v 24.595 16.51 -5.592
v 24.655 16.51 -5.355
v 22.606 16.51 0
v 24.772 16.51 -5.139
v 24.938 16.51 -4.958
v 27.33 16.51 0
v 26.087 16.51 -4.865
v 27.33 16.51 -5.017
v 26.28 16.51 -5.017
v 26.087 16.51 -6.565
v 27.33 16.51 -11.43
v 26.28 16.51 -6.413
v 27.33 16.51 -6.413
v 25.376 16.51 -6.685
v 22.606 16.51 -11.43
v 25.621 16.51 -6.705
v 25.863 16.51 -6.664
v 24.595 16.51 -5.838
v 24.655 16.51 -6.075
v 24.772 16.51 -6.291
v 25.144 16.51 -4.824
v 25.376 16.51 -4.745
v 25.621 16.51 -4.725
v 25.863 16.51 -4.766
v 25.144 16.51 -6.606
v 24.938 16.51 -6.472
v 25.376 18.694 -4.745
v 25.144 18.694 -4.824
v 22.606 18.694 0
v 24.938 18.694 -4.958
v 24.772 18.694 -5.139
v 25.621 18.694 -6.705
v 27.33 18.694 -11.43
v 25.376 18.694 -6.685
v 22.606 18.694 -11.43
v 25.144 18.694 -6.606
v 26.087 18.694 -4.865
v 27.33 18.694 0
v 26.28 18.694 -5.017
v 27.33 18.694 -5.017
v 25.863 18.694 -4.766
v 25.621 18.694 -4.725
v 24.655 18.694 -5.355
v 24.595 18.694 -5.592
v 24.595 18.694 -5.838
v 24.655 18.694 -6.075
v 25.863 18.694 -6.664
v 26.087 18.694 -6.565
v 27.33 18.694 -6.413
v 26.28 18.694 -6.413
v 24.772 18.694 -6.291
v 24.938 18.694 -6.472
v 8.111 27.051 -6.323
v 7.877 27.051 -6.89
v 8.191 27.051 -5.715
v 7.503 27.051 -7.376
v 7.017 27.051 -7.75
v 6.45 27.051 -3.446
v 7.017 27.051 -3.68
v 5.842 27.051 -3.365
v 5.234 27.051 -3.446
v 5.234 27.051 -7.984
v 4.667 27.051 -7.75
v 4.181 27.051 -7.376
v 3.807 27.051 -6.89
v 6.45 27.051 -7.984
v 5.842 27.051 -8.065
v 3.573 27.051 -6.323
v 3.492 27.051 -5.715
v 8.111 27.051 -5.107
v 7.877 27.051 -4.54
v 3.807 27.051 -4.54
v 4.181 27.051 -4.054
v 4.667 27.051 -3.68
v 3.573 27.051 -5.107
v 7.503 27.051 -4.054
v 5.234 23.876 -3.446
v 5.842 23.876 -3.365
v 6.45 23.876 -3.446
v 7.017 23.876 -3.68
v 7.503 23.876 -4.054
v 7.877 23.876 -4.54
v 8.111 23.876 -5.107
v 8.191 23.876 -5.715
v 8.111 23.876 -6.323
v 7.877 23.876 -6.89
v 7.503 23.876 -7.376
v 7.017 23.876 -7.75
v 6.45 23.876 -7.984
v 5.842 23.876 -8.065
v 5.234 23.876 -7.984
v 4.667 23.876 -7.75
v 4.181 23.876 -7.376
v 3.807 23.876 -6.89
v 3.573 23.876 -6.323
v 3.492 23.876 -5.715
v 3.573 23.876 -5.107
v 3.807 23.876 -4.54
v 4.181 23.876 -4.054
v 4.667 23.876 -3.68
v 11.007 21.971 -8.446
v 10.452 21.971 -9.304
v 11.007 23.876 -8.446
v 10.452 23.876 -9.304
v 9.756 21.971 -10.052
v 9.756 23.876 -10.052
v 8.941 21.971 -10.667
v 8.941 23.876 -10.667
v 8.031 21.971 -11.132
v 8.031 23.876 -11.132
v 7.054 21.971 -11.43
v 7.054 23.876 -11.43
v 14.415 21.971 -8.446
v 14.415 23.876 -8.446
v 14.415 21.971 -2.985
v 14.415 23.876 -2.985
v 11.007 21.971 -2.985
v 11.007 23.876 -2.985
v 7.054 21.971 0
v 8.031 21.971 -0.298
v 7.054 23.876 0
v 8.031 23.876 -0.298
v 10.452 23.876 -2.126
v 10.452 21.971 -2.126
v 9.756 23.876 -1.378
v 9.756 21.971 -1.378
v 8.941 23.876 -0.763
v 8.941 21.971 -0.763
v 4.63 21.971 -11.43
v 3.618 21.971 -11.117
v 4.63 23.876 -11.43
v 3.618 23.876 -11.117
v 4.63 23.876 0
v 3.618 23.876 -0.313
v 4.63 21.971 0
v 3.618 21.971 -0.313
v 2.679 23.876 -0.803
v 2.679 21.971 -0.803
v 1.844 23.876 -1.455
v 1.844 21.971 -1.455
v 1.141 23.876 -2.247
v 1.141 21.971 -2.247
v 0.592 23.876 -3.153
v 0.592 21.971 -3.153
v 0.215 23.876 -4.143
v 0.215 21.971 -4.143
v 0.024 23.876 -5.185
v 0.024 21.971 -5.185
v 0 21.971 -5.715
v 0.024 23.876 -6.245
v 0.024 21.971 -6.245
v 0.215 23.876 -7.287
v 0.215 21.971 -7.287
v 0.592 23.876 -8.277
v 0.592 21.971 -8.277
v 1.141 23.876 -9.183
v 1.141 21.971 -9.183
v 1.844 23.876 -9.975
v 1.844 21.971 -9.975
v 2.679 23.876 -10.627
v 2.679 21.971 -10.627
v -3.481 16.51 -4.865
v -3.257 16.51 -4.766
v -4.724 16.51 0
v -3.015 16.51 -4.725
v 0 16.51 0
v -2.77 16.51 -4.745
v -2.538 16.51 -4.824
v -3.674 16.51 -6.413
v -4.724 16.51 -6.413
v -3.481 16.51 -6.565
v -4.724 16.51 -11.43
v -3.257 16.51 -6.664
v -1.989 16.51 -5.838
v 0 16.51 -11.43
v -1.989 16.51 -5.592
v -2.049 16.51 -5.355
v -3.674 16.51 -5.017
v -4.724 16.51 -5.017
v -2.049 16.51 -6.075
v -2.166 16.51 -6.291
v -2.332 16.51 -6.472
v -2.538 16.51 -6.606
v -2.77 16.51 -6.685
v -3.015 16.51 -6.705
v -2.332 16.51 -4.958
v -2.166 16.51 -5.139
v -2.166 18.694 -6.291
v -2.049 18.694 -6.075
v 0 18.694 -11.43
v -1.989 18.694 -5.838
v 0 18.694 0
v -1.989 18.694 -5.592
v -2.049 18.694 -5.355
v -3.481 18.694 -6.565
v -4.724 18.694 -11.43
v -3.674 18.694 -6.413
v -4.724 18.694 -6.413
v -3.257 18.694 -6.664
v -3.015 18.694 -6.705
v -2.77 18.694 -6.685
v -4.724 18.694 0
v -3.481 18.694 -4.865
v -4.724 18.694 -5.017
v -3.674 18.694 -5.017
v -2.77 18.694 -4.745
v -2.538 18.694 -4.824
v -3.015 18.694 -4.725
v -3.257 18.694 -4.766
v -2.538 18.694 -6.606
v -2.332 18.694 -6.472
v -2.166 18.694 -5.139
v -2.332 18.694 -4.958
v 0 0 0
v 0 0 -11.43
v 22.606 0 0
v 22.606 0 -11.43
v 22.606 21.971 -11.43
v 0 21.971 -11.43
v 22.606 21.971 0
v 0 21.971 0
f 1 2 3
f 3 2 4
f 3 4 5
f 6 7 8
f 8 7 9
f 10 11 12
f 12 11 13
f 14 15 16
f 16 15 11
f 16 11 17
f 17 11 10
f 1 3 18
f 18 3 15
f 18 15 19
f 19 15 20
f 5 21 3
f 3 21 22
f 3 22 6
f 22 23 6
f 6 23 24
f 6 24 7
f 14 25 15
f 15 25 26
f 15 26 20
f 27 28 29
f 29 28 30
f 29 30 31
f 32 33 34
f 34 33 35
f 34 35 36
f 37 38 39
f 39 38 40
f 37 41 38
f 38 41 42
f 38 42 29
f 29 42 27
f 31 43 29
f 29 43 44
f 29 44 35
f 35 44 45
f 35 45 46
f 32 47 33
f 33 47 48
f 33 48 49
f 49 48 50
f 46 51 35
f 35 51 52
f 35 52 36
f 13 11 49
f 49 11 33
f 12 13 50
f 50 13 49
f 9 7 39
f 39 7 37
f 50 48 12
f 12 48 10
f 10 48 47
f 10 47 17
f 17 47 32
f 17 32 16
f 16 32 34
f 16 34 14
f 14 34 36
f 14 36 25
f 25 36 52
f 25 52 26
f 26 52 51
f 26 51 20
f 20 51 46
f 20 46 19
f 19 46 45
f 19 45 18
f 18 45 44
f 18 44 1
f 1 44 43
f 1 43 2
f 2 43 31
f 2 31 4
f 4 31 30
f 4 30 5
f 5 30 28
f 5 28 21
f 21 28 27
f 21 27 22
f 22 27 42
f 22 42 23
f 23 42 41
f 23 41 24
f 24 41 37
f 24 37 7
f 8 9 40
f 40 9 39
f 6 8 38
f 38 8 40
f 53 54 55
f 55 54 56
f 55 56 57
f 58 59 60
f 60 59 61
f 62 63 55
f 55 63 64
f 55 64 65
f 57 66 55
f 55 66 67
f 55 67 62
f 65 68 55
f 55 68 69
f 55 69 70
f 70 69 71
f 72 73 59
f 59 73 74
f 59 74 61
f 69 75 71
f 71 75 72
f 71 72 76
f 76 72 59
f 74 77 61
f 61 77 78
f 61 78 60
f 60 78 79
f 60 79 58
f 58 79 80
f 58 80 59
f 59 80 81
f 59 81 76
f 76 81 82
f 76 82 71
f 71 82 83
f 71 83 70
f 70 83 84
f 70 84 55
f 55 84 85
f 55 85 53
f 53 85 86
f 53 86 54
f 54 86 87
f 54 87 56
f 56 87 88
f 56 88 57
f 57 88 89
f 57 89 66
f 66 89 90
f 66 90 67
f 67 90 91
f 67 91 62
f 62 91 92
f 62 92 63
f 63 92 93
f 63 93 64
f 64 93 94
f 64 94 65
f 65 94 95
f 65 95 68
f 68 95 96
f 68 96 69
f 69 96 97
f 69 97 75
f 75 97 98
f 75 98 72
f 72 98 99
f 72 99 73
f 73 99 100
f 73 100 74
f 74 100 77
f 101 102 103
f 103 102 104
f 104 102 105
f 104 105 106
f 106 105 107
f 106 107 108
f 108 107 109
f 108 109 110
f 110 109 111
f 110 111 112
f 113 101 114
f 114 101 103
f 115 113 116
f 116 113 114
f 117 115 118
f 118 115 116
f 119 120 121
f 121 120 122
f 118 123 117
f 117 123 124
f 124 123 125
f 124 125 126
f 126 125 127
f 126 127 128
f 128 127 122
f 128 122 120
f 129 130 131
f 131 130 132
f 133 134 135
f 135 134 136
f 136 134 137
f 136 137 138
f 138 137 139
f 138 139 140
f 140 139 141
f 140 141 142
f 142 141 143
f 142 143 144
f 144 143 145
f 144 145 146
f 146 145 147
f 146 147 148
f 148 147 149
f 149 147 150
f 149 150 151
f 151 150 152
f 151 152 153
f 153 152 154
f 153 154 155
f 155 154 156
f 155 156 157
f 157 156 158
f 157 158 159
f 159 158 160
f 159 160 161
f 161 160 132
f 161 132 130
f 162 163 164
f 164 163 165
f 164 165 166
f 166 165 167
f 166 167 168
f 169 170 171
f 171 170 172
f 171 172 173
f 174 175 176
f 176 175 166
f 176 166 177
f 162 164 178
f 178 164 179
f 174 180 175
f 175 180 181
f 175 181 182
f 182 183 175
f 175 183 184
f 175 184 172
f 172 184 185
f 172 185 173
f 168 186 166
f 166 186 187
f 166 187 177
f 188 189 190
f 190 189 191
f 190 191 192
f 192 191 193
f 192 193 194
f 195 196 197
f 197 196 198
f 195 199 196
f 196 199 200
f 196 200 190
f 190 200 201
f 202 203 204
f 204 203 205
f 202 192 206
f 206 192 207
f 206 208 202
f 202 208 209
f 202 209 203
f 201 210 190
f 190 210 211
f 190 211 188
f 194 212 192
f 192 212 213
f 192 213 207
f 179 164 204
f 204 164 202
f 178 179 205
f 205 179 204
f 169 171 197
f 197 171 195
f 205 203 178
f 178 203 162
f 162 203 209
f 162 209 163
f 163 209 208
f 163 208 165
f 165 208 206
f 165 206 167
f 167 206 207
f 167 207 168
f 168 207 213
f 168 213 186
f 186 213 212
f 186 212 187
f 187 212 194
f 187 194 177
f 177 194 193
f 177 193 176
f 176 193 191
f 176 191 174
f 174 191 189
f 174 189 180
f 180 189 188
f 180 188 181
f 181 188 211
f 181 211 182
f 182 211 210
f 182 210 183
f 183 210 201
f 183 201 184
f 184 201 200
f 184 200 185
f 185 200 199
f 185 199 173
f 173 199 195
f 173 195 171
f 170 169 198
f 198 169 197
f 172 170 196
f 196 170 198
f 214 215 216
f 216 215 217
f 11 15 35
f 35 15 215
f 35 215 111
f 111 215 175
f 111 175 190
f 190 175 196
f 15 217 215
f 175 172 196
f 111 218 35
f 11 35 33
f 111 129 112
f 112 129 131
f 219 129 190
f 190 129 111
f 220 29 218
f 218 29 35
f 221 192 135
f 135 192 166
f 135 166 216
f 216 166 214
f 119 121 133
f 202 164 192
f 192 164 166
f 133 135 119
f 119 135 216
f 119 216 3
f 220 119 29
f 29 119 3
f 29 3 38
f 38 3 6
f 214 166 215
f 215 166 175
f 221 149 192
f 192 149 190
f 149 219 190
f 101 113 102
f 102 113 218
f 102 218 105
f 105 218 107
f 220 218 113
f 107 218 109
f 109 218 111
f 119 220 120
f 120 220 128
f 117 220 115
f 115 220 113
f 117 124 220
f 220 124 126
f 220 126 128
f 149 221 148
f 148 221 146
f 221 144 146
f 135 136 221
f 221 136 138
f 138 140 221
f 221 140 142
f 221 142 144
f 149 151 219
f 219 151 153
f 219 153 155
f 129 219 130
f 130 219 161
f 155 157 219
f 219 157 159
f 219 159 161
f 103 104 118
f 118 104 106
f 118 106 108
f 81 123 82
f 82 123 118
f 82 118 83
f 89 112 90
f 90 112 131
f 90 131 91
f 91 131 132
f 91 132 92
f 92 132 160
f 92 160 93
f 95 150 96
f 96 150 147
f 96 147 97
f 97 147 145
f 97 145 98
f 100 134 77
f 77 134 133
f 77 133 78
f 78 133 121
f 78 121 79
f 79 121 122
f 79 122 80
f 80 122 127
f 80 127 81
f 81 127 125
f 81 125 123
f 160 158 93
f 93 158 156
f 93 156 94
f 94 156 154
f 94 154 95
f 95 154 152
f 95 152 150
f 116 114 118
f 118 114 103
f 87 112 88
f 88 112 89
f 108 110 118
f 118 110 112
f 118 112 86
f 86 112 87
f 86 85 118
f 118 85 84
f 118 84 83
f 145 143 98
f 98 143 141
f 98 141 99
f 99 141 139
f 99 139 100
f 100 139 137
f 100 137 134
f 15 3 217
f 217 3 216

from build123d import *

# Parameters (mm, degrees)
SKETCH1_W           = 22.606
SKETCH1_H           = 11.43
BOSS_EXTRUDE1_DEPTH = 21.971
BOSS_EXTRUDE2_DEPTH = 2.1844
BOSS_EXTRUDE3_DEPTH = 1.905
SKETCH5_R           = 2.3495
BOSS_EXTRUDE4_DEPTH = 3.175


with BuildPart() as part:
    # Sketch1 → Boss-Extrude1 (new body)
    with BuildSketch(Plane(origin=(0, 0, 0), x_dir=(1, 0, 0), z_dir=(0, 1, 0))):
        with Locations((11.303, 5.715)):
            Rectangle(SKETCH1_W, SKETCH1_H)
    extrude(amount=BOSS_EXTRUDE1_DEPTH)

    # Sketch3 → Boss-Extrude2 (add)
    with BuildSketch(Plane(origin=(0, 16.51, 0), x_dir=(1, 0, 0), z_dir=(0, 1, 0))):
        with BuildLine():
            Line((0, 0), (-4.7244, 0))
            Line((-4.7244, 0), (-4.7244, 5.0165))
            Line((-4.7244, 5.0165), (-3.674214486, 5.0165))
            ThreePointArc((-3.674214486, 5.0165), (-1.9812, 5.715), (-3.674214486, 6.4135))
            Line((-3.674214486, 6.4135), (-4.7244, 6.4135))
            Line((-4.7244, 6.4135), (-4.7244, 11.43))
            Line((-4.7244, 11.43), (0, 11.43))
            Line((0, 11.43), (0, 0))
        make_face()
    boss_extrude2 = extrude(amount=BOSS_EXTRUDE2_DEPTH)

    # Sketch4 → Boss-Extrude3 (add)
    with BuildSketch(Plane(origin=(0, 21.971, 0), x_dir=(1, 0, 0), z_dir=(0, 1, 0))):
        with BuildLine():
            Line((4.630497214, 11.43), (7.053502786, 11.43))
            ThreePointArc((7.053502786, 11.43), (9.362022159, 10.377446568), (11.006623292, 8.4455))
            Line((11.006623292, 8.4455), (14.4145, 8.4455))
            Line((14.4145, 8.4455), (14.4145, 2.9845))
            Line((14.4145, 2.9845), (11.006623292, 2.9845))
            ThreePointArc((11.006623292, 2.9845), (9.362022159, 1.052553432), (7.053502786, 0))
            Line((7.053502786, 0), (4.630497214, 0))
            ThreePointArc((4.630497214, 0), (0, 5.715), (4.630497214, 11.43))
        make_face()
    extrude(amount=BOSS_EXTRUDE3_DEPTH)

    # Sketch5 → Boss-Extrude4 (add)
    with BuildSketch(Plane(origin=(0, 23.876, 0), x_dir=(1, 0, 0), z_dir=(0, 1, 0))):
        with Locations(Location((5.842, 5.715, 0), (0, 0, 270))):
            Circle(SKETCH5_R)
    extrude(amount=BOSS_EXTRUDE4_DEPTH)

    # Mirror1: Boss-Extrude2 across plane
    add(boss_extrude2.mirror(Plane(origin=(11.303, 0, 0), x_dir=(0, 0, 1), z_dir=(1, 0, 0))))


solid = part.part
